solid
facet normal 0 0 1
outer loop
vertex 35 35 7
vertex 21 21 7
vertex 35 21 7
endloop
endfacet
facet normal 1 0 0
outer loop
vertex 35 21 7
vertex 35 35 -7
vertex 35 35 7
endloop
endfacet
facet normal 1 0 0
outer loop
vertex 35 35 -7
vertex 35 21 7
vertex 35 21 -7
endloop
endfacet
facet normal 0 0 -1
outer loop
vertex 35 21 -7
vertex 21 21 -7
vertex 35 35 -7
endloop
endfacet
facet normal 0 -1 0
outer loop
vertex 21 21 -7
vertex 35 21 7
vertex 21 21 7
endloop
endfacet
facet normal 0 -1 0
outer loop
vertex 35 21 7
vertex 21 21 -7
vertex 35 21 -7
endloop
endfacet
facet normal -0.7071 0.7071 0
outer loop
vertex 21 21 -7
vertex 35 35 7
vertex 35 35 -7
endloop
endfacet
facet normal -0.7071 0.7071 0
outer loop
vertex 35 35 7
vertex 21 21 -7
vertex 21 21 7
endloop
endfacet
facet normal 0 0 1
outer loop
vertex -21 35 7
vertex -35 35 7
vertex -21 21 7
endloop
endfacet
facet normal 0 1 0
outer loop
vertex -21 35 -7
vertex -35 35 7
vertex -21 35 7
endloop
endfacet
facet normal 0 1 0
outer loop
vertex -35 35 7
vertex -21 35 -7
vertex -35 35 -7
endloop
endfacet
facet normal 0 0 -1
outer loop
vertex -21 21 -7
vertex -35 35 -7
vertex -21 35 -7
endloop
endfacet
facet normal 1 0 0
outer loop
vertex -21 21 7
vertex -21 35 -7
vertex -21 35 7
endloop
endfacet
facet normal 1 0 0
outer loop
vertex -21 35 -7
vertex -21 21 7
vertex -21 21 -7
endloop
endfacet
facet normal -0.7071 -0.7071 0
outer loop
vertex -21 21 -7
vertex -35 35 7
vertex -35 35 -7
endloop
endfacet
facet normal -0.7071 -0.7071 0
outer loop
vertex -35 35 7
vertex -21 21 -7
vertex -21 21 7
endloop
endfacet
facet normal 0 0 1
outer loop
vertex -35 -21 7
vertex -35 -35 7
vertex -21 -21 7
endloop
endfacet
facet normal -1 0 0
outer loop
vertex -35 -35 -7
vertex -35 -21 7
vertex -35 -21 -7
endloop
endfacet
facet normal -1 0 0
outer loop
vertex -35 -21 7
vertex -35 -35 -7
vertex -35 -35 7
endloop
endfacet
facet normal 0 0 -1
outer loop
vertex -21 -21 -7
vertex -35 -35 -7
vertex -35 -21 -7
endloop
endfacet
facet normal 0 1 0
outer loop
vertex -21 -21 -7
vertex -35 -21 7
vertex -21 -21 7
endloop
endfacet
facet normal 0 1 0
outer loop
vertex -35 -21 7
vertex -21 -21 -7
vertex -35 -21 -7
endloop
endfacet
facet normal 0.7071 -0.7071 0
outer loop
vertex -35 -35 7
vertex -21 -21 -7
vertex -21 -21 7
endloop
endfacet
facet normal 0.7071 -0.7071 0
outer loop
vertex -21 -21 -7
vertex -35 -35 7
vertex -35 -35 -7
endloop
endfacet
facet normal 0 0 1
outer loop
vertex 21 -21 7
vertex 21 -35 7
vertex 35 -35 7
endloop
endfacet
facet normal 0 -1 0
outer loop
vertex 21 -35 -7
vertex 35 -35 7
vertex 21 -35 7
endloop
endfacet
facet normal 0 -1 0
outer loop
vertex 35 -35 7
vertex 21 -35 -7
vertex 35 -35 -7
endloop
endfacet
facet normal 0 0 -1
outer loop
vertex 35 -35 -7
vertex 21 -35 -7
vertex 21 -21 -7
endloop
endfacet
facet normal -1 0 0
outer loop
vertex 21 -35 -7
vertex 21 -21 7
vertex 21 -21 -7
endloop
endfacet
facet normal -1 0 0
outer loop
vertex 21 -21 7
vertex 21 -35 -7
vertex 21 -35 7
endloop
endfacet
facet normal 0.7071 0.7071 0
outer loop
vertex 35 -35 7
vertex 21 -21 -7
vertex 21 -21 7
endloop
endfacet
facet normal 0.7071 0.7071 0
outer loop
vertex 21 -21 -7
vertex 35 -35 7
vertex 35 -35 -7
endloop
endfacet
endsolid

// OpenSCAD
// file: def.scad
block_size_3 = 19;
block_size_4 = 16;
block_size_5 = 14;
block_size_6 = 12.5;
block_size_7 = 11;
block_size_8 = 10;

inf = 1000;

round_radius = 1;
sticker_margin = 2.5;
sticker_round_radius = 0.75;

module _block(size) {
    minkowski() {
        cube([size - round_radius * 2, size - round_radius * 2, size - round_radius * 2], center = true);
        sphere(r = round_radius, $fn = 24);
    }
}

module _selector_0(size) {
    cube([size - 0.2, size - 0.2, size - 0.2], center = true);
}

module _sticker(size) {
    minkowski() {
        cube([size - sticker_margin * 2, size - sticker_margin * 2, 0.1], center = true);
        cylinder(r = sticker_round_radius, h = 0.1, $fn = 24);
    }
}

module _selector_corner_cw(size) {
    difference() {
        cube([size, size, size], center = true);
        rotate([0, -45, 0])
            translate([-inf, -inf, 0])
                cube([inf * 2, inf * 2, inf]);
        rotate([90, 0, 45])
            translate([-inf, -inf, 0])
                cube([inf * 2, inf * 2, inf]);
    }
}

module _selector_corner_ccw(size) {
    difference() {
        cube([size, size, size], center = true);
        rotate([45, 0, 0])
            translate([-inf, -inf, 0])
                cube([inf * 2, inf * 2, inf]);
        rotate([0, -90, -45])
            translate([-inf, -inf, 0])
                cube([inf * 2, inf * 2, inf]);
    }
}

module _selector_edge_cw(size) {
    difference() {
        cube([size, size, size], center = true);
        rotate([90, 0, 45])
            translate([-inf, -inf, 0])
                cube([inf * 2, inf * 2, inf]);
    }
}

module _selector_edge_ccw(size) {
    difference() {
        cube([size, size, size], center = true);
        rotate([0, -90, -45])
            translate([-inf, -inf, 0])
                cube([inf * 2, inf * 2, inf]);
    }
}
// main file
include <def.scad>

for (deg = [0 : 90 : 270])
    rotate([0, 0, deg])
        translate([block_size_5 * 2, block_size_5 * 2, 0])
            _selector_edge_ccw(block_size_5);
